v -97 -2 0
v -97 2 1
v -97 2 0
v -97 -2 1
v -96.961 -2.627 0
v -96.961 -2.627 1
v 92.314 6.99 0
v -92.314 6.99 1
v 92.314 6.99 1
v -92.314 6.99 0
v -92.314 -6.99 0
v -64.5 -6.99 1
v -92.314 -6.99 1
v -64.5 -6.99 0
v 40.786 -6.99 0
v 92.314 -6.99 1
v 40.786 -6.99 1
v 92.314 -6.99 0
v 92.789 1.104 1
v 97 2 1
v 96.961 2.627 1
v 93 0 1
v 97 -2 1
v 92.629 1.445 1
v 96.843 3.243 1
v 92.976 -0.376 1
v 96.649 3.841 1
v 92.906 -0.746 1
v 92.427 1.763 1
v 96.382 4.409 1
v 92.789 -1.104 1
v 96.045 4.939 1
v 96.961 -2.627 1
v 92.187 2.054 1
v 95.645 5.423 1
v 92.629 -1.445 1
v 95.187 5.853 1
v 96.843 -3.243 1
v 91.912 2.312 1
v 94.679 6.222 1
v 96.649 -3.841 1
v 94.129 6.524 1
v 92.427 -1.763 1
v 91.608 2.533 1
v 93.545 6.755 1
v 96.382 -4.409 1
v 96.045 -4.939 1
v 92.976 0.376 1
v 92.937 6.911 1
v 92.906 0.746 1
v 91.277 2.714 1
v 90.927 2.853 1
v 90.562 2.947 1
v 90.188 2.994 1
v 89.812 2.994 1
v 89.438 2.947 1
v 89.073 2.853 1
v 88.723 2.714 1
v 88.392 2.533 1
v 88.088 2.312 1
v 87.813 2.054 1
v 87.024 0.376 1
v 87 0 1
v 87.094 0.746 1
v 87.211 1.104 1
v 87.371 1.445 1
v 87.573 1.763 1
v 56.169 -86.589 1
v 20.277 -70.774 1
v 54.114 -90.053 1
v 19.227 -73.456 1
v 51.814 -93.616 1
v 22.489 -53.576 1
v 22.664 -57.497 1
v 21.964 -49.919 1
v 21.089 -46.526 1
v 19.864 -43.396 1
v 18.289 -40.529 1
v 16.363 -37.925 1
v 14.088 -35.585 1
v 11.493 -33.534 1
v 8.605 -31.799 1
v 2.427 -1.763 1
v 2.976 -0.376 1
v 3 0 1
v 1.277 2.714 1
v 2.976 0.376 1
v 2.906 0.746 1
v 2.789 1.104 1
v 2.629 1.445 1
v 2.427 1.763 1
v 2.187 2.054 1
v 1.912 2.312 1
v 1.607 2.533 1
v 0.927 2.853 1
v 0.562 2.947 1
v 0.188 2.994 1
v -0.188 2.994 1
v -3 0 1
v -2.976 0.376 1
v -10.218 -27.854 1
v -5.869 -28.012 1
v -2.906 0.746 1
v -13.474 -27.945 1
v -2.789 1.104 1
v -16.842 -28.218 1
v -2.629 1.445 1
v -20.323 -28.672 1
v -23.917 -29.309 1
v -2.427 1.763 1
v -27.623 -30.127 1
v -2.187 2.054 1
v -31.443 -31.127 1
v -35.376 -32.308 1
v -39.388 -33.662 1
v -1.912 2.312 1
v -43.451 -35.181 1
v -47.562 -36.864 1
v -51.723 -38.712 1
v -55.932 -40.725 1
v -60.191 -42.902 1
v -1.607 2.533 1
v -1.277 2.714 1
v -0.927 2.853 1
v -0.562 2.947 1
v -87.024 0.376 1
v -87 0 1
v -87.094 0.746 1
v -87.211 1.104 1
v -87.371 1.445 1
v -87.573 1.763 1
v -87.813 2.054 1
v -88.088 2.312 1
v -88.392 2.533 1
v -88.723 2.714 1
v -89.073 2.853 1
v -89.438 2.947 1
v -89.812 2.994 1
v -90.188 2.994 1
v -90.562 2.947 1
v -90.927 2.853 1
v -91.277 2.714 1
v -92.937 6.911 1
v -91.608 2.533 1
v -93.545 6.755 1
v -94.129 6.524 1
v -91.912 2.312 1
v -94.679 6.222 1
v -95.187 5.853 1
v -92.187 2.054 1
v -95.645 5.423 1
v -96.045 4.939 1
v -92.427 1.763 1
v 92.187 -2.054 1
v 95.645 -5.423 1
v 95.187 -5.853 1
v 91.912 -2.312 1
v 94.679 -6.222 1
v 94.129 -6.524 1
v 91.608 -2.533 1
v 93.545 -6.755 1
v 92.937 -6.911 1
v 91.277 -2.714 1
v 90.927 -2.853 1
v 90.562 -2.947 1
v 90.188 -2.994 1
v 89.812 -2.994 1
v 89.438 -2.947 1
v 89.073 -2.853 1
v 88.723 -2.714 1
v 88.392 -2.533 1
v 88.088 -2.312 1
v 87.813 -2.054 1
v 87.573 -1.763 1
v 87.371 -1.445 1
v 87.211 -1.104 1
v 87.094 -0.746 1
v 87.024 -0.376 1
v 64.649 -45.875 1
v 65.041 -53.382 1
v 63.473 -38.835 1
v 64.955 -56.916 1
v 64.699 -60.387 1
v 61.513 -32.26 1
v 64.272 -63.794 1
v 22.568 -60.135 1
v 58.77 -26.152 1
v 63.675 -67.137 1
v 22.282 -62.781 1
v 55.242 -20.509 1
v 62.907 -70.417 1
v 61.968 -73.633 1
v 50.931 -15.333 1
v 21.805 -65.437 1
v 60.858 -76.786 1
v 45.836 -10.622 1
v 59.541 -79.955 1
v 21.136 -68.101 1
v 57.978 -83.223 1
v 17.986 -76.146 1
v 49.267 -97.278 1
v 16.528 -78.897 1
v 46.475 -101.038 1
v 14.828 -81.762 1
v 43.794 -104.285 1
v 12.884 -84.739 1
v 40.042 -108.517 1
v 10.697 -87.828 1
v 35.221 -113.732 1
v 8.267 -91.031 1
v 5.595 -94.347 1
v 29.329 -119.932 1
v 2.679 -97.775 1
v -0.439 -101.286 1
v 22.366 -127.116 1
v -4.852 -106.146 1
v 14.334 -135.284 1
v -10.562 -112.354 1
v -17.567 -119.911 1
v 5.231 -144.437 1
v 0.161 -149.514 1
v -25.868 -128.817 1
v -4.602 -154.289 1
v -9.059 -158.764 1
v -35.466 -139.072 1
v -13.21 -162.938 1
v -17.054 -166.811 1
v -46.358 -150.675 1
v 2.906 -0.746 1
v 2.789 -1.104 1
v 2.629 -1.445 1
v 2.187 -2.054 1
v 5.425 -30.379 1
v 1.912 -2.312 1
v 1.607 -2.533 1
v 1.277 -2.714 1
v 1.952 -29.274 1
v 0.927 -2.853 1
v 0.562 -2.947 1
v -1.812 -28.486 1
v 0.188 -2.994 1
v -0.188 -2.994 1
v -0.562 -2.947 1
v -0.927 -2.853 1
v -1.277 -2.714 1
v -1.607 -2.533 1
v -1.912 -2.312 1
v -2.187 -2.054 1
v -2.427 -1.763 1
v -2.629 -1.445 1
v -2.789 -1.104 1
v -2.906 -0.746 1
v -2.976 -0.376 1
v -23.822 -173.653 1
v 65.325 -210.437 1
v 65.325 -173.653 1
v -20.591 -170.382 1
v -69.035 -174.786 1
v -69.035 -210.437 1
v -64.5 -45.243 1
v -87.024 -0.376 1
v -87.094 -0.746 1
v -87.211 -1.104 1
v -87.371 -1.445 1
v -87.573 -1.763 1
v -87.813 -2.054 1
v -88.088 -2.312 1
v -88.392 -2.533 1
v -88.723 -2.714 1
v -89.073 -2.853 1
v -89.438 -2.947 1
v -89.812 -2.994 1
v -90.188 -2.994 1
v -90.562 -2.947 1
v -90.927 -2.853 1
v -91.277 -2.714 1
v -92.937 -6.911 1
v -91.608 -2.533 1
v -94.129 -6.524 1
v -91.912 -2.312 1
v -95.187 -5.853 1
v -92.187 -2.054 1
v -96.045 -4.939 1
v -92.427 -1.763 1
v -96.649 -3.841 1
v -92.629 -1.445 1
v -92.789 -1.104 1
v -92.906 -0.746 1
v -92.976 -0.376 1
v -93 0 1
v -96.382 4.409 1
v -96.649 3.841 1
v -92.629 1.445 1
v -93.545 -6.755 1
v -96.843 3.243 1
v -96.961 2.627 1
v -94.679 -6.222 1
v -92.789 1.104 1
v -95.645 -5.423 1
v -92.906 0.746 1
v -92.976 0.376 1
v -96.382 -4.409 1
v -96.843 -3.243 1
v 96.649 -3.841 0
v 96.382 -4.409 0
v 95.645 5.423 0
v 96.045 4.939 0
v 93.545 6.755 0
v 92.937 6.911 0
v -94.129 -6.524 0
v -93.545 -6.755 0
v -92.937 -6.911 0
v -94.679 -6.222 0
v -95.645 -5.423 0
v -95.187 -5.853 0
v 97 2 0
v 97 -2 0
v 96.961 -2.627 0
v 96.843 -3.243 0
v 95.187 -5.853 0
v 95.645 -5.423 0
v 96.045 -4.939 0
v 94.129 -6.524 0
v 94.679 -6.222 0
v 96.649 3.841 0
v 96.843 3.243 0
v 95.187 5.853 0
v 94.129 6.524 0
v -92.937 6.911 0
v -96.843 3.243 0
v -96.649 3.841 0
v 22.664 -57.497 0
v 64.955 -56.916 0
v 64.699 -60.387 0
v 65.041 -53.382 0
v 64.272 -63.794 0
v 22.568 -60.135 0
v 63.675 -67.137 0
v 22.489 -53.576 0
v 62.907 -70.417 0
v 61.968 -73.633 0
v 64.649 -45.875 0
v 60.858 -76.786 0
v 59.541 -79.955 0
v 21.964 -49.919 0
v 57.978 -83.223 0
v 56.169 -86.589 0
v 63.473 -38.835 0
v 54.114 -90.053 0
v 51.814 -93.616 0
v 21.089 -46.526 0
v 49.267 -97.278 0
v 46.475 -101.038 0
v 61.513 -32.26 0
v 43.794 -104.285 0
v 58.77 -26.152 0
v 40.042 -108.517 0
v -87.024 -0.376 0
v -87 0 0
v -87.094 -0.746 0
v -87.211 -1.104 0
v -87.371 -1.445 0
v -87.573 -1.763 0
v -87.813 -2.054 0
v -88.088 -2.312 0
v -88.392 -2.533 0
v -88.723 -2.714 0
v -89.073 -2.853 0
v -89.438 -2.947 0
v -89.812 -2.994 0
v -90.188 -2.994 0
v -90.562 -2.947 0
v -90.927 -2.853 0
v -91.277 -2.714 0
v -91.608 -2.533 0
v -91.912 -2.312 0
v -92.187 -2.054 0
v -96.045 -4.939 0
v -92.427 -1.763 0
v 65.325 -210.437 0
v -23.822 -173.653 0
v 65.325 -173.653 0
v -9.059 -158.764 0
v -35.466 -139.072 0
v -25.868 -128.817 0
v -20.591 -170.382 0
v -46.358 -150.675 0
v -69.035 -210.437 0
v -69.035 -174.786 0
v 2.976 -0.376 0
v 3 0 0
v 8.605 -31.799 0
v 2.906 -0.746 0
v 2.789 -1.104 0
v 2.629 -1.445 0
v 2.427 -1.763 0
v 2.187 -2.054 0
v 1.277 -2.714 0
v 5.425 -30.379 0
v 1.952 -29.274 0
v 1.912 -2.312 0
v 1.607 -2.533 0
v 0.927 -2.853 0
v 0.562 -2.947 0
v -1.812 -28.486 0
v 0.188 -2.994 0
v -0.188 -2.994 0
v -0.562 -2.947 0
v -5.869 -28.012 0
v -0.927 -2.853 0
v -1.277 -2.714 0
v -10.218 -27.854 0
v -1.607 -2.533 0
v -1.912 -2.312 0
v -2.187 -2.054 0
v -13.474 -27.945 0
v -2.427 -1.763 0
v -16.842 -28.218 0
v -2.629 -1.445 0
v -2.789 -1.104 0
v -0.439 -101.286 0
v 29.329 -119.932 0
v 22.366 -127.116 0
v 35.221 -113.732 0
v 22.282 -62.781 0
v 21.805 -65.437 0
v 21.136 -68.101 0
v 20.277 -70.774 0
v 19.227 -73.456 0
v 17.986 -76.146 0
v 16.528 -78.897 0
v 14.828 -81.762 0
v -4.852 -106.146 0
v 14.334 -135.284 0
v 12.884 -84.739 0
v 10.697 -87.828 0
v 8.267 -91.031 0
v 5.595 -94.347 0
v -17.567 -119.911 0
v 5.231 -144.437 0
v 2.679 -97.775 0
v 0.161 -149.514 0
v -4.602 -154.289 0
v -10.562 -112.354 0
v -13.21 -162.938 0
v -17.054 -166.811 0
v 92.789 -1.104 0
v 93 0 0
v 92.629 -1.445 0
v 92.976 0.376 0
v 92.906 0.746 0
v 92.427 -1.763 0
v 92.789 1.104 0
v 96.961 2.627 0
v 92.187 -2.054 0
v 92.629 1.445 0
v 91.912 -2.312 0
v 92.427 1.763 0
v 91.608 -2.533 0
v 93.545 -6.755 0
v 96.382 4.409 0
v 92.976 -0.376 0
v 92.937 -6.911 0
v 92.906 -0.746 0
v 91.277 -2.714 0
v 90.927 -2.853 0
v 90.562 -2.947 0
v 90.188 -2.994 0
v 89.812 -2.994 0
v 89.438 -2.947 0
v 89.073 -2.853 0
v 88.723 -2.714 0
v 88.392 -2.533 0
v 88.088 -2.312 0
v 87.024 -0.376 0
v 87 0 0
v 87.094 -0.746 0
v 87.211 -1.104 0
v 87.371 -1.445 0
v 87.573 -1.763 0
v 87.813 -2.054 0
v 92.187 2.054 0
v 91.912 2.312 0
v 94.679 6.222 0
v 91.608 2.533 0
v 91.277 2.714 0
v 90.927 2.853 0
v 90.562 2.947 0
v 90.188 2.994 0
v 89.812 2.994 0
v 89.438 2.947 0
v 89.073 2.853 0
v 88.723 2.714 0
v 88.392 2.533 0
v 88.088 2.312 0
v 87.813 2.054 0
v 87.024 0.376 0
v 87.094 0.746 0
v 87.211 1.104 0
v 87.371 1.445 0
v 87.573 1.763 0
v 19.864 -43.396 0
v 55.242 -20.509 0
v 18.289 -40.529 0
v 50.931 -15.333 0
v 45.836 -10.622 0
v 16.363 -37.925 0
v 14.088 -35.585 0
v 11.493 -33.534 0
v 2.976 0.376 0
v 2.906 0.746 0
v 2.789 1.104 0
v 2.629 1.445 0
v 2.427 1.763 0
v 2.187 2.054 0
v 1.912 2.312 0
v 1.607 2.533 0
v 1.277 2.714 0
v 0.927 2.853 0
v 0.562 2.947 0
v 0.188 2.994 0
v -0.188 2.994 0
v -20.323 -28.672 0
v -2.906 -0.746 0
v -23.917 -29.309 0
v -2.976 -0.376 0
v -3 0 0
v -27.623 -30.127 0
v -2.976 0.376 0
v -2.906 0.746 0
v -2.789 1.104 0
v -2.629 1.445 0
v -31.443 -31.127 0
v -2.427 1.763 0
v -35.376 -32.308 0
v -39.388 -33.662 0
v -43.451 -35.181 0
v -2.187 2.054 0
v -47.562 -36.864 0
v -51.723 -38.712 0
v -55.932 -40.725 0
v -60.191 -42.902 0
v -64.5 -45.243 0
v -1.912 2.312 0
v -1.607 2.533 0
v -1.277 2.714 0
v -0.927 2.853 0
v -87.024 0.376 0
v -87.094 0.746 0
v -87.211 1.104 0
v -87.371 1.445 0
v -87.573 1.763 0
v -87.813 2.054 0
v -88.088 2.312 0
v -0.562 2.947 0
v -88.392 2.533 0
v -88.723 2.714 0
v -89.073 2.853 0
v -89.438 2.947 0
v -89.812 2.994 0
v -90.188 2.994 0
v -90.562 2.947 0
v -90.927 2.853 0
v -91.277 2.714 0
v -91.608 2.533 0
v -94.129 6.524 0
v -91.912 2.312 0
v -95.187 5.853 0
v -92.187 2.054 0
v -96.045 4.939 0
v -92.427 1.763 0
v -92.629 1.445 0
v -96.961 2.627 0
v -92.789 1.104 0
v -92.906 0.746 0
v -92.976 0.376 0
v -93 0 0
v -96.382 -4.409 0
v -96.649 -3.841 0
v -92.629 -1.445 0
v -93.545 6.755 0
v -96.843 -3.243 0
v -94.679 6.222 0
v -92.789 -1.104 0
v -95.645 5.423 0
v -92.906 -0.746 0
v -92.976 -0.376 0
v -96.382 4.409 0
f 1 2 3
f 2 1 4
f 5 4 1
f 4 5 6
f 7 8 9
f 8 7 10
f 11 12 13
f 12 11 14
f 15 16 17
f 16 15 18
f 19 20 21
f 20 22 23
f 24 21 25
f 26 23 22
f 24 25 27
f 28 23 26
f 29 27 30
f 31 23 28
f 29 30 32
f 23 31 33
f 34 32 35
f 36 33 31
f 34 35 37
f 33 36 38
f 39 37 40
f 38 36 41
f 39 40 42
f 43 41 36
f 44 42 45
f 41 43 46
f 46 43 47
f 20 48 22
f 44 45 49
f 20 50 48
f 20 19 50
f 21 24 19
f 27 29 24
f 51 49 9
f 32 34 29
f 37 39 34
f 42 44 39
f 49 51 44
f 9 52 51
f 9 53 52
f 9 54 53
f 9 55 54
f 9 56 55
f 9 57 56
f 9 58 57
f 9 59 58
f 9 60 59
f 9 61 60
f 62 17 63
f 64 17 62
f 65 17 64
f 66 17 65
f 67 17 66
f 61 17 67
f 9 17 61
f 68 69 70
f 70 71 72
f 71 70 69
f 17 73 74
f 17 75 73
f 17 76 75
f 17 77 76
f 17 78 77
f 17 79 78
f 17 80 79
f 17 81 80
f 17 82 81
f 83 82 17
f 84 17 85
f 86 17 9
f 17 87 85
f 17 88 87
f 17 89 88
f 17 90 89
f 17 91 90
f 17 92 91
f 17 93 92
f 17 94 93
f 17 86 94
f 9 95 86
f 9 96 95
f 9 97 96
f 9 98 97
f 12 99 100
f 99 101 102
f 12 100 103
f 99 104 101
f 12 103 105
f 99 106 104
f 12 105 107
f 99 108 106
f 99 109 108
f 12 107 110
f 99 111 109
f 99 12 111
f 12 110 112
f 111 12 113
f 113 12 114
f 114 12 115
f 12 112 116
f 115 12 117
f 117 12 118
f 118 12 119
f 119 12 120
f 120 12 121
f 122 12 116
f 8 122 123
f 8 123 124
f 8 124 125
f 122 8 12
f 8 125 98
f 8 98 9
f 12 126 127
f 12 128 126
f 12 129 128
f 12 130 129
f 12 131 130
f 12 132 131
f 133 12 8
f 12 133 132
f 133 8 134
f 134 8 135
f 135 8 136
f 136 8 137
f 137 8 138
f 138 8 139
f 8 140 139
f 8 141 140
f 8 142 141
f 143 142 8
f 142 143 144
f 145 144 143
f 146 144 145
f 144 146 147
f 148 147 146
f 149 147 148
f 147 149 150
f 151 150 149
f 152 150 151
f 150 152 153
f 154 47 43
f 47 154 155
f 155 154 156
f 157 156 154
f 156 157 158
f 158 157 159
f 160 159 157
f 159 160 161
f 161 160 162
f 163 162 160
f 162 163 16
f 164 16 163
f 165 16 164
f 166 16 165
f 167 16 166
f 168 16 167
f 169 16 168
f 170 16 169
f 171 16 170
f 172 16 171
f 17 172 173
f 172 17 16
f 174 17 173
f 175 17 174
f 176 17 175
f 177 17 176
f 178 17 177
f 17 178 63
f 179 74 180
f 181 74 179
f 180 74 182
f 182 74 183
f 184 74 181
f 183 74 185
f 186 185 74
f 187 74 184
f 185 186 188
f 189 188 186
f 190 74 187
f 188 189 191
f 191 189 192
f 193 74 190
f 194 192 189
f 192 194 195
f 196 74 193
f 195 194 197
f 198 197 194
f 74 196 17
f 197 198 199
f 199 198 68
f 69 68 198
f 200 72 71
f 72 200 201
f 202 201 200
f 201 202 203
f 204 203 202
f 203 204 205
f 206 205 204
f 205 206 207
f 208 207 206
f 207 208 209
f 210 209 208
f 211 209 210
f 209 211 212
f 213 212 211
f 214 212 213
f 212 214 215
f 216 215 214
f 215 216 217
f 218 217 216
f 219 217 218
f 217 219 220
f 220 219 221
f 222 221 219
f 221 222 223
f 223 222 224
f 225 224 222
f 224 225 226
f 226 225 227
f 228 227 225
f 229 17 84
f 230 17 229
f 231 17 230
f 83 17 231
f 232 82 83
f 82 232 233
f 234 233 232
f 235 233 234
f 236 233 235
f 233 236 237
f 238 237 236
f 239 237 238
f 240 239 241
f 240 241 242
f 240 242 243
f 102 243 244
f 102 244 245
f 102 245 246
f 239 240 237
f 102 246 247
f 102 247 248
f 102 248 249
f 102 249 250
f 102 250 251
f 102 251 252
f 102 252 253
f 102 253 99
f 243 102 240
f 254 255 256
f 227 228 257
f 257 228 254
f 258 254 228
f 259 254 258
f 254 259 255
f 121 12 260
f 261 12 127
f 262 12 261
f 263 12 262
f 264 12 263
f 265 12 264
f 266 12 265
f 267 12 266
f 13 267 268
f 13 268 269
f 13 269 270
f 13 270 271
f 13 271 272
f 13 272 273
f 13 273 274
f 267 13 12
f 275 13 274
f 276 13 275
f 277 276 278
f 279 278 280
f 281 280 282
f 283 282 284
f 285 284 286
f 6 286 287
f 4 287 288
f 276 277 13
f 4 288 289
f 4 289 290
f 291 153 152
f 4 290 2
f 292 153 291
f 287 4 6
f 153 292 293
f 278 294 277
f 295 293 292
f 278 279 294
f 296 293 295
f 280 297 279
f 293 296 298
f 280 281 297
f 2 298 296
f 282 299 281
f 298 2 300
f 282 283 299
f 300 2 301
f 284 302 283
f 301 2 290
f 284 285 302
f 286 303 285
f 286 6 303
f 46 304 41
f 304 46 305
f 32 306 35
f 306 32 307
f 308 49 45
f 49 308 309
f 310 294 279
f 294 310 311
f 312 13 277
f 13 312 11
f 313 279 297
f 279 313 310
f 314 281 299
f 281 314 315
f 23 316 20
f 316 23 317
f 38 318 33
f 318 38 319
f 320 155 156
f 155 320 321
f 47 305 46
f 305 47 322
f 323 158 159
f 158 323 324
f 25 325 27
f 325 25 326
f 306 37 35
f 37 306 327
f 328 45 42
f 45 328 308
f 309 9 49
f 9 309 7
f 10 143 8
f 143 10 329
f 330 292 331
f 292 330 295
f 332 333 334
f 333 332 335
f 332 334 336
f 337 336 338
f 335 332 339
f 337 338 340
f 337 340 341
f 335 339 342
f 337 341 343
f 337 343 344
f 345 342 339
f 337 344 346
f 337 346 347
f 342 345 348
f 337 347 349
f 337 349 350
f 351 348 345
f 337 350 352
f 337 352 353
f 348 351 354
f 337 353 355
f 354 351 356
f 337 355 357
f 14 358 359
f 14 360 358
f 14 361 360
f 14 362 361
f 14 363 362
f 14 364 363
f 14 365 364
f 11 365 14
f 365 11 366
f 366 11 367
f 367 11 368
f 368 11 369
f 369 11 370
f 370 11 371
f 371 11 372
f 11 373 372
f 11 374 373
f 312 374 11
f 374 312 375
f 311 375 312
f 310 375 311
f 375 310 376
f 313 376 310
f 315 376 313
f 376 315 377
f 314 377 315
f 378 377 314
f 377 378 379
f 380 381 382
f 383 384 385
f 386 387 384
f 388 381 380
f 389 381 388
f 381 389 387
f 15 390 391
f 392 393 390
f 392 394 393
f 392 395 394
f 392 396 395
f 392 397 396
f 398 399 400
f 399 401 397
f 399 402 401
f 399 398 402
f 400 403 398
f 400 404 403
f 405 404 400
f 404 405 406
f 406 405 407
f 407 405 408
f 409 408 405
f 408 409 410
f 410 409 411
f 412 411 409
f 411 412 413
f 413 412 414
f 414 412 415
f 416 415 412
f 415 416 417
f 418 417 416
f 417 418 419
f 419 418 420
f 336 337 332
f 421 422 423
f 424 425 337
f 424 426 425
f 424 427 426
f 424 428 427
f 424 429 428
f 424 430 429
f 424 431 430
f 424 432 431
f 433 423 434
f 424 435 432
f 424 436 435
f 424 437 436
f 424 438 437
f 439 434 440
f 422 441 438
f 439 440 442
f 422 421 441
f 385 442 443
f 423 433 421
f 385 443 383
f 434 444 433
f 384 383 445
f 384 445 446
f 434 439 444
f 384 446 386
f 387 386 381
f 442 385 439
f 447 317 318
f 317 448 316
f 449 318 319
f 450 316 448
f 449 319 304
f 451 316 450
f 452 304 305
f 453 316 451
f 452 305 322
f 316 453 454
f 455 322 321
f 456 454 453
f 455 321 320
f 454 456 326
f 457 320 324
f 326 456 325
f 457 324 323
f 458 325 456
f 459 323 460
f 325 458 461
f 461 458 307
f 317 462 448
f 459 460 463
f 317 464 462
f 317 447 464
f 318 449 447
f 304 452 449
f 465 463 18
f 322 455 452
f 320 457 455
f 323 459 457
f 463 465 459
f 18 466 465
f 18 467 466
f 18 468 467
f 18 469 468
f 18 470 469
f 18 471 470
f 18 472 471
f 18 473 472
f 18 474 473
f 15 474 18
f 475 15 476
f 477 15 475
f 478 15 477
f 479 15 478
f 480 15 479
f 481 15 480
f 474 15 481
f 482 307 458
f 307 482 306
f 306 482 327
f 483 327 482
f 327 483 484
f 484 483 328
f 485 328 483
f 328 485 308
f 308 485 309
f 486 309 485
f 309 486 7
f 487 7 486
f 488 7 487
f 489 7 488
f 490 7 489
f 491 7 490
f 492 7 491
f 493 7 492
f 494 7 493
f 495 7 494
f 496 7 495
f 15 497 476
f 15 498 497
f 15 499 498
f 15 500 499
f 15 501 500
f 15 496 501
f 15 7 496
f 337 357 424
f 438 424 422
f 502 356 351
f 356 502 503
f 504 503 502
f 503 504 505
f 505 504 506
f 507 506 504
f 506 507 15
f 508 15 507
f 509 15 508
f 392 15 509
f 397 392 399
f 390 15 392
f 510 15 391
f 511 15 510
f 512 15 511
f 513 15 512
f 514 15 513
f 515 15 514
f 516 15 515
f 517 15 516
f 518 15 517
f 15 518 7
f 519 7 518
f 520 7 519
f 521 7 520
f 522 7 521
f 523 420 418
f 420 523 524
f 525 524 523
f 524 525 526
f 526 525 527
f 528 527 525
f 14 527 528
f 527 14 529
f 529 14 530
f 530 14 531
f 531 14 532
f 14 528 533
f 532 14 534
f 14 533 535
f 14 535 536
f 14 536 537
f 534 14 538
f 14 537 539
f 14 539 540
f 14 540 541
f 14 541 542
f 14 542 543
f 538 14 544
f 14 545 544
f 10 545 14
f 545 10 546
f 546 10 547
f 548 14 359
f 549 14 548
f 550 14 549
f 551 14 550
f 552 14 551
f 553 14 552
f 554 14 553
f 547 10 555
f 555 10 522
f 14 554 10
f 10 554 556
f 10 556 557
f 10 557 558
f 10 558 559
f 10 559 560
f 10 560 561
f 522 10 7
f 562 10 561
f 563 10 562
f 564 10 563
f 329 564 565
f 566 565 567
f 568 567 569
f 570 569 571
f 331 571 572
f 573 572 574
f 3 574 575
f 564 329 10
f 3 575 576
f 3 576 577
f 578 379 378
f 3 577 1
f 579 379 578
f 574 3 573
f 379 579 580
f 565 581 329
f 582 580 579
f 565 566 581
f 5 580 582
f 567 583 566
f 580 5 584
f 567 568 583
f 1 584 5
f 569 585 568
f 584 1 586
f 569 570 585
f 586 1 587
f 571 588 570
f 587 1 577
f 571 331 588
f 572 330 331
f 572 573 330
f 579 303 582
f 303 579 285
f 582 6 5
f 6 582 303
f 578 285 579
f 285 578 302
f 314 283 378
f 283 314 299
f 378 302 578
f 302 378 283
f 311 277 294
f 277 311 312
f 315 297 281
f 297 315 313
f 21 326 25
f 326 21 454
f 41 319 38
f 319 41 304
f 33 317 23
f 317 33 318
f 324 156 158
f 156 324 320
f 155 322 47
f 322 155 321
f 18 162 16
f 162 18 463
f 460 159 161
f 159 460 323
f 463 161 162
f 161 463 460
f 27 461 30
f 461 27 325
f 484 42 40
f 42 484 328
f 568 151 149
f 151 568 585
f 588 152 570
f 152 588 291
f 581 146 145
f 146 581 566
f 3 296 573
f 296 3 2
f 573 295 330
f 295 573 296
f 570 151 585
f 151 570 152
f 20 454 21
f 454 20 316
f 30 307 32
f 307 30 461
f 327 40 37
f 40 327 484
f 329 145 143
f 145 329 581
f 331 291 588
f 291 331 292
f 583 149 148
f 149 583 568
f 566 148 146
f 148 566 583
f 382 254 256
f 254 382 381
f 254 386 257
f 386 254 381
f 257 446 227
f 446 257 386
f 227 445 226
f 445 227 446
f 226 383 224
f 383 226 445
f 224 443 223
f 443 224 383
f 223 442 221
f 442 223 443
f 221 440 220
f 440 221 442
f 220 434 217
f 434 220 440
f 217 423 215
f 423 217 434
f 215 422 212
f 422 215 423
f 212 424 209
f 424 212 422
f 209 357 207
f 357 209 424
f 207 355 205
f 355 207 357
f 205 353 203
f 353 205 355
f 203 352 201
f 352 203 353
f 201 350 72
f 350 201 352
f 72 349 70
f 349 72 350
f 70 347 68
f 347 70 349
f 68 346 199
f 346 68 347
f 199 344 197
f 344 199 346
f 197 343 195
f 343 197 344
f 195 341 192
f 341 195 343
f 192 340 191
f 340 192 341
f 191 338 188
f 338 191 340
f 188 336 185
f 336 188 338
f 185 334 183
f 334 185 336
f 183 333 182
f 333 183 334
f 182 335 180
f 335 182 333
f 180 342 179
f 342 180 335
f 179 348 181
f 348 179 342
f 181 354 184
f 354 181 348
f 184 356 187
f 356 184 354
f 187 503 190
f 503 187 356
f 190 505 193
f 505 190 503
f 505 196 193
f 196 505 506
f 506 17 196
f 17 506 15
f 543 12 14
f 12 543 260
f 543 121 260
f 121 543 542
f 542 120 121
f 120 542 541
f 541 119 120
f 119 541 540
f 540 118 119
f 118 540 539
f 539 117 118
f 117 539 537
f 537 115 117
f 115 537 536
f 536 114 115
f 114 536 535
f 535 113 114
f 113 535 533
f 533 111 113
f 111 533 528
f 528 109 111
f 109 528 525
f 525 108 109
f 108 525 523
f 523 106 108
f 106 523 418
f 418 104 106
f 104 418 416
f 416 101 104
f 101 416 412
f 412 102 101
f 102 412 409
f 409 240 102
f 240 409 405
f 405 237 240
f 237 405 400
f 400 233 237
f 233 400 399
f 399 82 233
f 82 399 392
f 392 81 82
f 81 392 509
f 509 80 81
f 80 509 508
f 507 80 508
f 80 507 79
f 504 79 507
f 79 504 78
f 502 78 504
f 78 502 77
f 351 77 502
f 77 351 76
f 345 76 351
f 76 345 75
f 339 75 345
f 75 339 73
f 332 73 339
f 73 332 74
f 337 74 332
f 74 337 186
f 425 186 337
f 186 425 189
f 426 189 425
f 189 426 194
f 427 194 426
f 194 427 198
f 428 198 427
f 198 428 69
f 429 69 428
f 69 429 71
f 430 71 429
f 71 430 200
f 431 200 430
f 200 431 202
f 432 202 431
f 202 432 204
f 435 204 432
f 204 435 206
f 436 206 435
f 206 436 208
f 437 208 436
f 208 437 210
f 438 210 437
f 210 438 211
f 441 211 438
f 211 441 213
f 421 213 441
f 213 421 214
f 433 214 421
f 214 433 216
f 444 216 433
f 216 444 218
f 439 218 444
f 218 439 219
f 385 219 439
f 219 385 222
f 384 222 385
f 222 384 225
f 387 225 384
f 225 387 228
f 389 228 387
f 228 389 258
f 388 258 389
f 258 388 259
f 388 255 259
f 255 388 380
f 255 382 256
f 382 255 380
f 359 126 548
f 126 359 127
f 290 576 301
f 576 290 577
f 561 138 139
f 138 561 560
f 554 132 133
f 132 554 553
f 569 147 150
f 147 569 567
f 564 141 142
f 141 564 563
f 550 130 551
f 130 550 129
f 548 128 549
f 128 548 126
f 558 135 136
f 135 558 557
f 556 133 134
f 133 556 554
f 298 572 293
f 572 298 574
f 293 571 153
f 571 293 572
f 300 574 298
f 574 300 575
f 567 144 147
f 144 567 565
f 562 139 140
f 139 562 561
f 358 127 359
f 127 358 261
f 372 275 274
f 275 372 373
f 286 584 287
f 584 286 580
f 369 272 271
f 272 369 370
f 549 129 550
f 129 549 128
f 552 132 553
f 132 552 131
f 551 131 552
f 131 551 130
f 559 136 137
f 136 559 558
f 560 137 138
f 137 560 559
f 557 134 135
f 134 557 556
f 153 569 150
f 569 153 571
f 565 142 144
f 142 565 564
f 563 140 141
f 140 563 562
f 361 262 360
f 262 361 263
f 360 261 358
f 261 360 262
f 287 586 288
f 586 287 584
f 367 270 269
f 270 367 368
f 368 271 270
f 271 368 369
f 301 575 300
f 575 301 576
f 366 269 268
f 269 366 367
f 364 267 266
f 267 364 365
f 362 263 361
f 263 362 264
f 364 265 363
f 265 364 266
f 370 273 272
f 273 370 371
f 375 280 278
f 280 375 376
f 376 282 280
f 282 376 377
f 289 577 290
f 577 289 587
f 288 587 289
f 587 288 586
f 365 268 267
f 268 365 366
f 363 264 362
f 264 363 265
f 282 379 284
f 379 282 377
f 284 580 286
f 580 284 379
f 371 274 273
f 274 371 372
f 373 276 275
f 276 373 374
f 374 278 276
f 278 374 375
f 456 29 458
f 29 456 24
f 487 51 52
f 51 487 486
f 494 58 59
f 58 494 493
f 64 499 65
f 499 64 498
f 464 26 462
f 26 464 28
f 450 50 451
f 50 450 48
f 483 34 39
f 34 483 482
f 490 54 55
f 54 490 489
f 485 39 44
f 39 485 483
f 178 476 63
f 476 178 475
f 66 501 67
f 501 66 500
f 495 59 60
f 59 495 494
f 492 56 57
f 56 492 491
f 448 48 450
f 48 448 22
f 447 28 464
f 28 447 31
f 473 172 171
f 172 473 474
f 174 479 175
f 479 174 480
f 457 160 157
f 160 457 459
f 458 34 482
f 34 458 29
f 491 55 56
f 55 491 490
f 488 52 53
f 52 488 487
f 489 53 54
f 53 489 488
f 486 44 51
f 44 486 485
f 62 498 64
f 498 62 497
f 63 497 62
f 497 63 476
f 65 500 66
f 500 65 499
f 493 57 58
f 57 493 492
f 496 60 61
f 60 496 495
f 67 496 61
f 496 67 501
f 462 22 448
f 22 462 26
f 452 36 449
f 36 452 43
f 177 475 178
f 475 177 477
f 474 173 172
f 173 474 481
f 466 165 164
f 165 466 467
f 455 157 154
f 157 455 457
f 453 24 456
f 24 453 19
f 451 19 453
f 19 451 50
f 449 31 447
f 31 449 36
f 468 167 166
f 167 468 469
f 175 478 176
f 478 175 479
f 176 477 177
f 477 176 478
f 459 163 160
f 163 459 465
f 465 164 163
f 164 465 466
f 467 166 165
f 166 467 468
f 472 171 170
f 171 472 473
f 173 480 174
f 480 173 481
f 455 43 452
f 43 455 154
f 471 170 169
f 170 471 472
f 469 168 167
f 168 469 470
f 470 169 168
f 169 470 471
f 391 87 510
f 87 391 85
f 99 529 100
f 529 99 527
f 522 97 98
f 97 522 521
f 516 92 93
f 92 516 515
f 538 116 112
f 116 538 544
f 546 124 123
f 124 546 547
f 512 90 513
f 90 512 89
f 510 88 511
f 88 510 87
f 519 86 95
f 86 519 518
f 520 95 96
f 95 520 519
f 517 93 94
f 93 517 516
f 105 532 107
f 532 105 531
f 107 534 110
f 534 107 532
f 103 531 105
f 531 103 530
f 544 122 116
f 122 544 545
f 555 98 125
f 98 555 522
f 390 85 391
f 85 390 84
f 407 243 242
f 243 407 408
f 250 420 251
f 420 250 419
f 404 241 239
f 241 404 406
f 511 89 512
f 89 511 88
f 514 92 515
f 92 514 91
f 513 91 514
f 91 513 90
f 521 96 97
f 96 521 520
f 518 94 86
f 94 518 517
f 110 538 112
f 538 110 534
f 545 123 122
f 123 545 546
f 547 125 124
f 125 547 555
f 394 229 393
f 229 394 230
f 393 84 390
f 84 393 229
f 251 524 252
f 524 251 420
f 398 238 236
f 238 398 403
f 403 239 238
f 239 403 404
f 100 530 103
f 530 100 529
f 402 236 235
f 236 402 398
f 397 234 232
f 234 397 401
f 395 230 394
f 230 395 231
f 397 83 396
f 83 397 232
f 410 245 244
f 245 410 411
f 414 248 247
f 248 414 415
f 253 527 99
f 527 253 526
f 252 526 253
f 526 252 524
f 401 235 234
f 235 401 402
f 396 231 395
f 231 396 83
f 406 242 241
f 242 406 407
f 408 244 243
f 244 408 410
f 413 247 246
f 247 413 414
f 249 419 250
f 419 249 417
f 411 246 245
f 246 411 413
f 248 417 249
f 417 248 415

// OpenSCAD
$fn = 50;


difference() {
	union() {
		translate(v = [0, 0, 0]) {
			rotate(a = [0, 0, 0]) {
				hull() {
					translate(v = [-92.0000000000, 2.0000000000, 0]) {
						rotate(a = [0, 0, 0]) {
							translate(v = [0, 0, 0]) {
								rotate(a = [0, 0, 0]) {
									cylinder(h = 1, r = 5);
								}
							}
						}
					}
					translate(v = [92.0000000000, 2.0000000000, 0]) {
						rotate(a = [0, 0, 0]) {
							translate(v = [0, 0, 0]) {
								rotate(a = [0, 0, 0]) {
									cylinder(h = 1, r = 5);
								}
							}
						}
					}
					translate(v = [-92.0000000000, -2.0000000000, 0]) {
						rotate(a = [0, 0, 0]) {
							translate(v = [0, 0, 0]) {
								rotate(a = [0, 0, 0]) {
									cylinder(h = 1, r = 5);
								}
							}
						}
					}
					translate(v = [92.0000000000, -2.0000000000, 0]) {
						rotate(a = [0, 0, 0]) {
							translate(v = [0, 0, 0]) {
								rotate(a = [0, 0, 0]) {
									cylinder(h = 1, r = 5);
								}
							}
						}
					}
				}
			}
		}
		translate(v = [0, 0, 0]) {
			rotate(a = [0, 0, 0]) {
				linear_extrude(height = 1) {
					text(font = "DejaVu Sans Mono:style=Bold", halign = "center", size = 209.0000000000, text = "2", valign = "top");
				}
			}
		}
	}
	union() {
		translate(v = [-90.0000000000, 0.0000000000, -125.0000000000]) {
			rotate(a = [0, 0, 0]) {
				cylinder(h = 250, r = 3.0000000000);
			}
		}
		translate(v = [90.0000000000, 0.0000000000, -125.0000000000]) {
			rotate(a = [0, 0, 0]) {
				cylinder(h = 250, r = 3.0000000000);
			}
		}
		translate(v = [90.0000000000, 0.0000000000, -125.0000000000]) {
			rotate(a = [0, 0, 0]) {
				cylinder(h = 250, r = 3.0000000000);
			}
		}
		translate(v = [0, 0, -125.0000000000]) {
			rotate(a = [0, 0, 0]) {
				cylinder(h = 250, r = 3.0000000000);
			}
		}
	}
}
